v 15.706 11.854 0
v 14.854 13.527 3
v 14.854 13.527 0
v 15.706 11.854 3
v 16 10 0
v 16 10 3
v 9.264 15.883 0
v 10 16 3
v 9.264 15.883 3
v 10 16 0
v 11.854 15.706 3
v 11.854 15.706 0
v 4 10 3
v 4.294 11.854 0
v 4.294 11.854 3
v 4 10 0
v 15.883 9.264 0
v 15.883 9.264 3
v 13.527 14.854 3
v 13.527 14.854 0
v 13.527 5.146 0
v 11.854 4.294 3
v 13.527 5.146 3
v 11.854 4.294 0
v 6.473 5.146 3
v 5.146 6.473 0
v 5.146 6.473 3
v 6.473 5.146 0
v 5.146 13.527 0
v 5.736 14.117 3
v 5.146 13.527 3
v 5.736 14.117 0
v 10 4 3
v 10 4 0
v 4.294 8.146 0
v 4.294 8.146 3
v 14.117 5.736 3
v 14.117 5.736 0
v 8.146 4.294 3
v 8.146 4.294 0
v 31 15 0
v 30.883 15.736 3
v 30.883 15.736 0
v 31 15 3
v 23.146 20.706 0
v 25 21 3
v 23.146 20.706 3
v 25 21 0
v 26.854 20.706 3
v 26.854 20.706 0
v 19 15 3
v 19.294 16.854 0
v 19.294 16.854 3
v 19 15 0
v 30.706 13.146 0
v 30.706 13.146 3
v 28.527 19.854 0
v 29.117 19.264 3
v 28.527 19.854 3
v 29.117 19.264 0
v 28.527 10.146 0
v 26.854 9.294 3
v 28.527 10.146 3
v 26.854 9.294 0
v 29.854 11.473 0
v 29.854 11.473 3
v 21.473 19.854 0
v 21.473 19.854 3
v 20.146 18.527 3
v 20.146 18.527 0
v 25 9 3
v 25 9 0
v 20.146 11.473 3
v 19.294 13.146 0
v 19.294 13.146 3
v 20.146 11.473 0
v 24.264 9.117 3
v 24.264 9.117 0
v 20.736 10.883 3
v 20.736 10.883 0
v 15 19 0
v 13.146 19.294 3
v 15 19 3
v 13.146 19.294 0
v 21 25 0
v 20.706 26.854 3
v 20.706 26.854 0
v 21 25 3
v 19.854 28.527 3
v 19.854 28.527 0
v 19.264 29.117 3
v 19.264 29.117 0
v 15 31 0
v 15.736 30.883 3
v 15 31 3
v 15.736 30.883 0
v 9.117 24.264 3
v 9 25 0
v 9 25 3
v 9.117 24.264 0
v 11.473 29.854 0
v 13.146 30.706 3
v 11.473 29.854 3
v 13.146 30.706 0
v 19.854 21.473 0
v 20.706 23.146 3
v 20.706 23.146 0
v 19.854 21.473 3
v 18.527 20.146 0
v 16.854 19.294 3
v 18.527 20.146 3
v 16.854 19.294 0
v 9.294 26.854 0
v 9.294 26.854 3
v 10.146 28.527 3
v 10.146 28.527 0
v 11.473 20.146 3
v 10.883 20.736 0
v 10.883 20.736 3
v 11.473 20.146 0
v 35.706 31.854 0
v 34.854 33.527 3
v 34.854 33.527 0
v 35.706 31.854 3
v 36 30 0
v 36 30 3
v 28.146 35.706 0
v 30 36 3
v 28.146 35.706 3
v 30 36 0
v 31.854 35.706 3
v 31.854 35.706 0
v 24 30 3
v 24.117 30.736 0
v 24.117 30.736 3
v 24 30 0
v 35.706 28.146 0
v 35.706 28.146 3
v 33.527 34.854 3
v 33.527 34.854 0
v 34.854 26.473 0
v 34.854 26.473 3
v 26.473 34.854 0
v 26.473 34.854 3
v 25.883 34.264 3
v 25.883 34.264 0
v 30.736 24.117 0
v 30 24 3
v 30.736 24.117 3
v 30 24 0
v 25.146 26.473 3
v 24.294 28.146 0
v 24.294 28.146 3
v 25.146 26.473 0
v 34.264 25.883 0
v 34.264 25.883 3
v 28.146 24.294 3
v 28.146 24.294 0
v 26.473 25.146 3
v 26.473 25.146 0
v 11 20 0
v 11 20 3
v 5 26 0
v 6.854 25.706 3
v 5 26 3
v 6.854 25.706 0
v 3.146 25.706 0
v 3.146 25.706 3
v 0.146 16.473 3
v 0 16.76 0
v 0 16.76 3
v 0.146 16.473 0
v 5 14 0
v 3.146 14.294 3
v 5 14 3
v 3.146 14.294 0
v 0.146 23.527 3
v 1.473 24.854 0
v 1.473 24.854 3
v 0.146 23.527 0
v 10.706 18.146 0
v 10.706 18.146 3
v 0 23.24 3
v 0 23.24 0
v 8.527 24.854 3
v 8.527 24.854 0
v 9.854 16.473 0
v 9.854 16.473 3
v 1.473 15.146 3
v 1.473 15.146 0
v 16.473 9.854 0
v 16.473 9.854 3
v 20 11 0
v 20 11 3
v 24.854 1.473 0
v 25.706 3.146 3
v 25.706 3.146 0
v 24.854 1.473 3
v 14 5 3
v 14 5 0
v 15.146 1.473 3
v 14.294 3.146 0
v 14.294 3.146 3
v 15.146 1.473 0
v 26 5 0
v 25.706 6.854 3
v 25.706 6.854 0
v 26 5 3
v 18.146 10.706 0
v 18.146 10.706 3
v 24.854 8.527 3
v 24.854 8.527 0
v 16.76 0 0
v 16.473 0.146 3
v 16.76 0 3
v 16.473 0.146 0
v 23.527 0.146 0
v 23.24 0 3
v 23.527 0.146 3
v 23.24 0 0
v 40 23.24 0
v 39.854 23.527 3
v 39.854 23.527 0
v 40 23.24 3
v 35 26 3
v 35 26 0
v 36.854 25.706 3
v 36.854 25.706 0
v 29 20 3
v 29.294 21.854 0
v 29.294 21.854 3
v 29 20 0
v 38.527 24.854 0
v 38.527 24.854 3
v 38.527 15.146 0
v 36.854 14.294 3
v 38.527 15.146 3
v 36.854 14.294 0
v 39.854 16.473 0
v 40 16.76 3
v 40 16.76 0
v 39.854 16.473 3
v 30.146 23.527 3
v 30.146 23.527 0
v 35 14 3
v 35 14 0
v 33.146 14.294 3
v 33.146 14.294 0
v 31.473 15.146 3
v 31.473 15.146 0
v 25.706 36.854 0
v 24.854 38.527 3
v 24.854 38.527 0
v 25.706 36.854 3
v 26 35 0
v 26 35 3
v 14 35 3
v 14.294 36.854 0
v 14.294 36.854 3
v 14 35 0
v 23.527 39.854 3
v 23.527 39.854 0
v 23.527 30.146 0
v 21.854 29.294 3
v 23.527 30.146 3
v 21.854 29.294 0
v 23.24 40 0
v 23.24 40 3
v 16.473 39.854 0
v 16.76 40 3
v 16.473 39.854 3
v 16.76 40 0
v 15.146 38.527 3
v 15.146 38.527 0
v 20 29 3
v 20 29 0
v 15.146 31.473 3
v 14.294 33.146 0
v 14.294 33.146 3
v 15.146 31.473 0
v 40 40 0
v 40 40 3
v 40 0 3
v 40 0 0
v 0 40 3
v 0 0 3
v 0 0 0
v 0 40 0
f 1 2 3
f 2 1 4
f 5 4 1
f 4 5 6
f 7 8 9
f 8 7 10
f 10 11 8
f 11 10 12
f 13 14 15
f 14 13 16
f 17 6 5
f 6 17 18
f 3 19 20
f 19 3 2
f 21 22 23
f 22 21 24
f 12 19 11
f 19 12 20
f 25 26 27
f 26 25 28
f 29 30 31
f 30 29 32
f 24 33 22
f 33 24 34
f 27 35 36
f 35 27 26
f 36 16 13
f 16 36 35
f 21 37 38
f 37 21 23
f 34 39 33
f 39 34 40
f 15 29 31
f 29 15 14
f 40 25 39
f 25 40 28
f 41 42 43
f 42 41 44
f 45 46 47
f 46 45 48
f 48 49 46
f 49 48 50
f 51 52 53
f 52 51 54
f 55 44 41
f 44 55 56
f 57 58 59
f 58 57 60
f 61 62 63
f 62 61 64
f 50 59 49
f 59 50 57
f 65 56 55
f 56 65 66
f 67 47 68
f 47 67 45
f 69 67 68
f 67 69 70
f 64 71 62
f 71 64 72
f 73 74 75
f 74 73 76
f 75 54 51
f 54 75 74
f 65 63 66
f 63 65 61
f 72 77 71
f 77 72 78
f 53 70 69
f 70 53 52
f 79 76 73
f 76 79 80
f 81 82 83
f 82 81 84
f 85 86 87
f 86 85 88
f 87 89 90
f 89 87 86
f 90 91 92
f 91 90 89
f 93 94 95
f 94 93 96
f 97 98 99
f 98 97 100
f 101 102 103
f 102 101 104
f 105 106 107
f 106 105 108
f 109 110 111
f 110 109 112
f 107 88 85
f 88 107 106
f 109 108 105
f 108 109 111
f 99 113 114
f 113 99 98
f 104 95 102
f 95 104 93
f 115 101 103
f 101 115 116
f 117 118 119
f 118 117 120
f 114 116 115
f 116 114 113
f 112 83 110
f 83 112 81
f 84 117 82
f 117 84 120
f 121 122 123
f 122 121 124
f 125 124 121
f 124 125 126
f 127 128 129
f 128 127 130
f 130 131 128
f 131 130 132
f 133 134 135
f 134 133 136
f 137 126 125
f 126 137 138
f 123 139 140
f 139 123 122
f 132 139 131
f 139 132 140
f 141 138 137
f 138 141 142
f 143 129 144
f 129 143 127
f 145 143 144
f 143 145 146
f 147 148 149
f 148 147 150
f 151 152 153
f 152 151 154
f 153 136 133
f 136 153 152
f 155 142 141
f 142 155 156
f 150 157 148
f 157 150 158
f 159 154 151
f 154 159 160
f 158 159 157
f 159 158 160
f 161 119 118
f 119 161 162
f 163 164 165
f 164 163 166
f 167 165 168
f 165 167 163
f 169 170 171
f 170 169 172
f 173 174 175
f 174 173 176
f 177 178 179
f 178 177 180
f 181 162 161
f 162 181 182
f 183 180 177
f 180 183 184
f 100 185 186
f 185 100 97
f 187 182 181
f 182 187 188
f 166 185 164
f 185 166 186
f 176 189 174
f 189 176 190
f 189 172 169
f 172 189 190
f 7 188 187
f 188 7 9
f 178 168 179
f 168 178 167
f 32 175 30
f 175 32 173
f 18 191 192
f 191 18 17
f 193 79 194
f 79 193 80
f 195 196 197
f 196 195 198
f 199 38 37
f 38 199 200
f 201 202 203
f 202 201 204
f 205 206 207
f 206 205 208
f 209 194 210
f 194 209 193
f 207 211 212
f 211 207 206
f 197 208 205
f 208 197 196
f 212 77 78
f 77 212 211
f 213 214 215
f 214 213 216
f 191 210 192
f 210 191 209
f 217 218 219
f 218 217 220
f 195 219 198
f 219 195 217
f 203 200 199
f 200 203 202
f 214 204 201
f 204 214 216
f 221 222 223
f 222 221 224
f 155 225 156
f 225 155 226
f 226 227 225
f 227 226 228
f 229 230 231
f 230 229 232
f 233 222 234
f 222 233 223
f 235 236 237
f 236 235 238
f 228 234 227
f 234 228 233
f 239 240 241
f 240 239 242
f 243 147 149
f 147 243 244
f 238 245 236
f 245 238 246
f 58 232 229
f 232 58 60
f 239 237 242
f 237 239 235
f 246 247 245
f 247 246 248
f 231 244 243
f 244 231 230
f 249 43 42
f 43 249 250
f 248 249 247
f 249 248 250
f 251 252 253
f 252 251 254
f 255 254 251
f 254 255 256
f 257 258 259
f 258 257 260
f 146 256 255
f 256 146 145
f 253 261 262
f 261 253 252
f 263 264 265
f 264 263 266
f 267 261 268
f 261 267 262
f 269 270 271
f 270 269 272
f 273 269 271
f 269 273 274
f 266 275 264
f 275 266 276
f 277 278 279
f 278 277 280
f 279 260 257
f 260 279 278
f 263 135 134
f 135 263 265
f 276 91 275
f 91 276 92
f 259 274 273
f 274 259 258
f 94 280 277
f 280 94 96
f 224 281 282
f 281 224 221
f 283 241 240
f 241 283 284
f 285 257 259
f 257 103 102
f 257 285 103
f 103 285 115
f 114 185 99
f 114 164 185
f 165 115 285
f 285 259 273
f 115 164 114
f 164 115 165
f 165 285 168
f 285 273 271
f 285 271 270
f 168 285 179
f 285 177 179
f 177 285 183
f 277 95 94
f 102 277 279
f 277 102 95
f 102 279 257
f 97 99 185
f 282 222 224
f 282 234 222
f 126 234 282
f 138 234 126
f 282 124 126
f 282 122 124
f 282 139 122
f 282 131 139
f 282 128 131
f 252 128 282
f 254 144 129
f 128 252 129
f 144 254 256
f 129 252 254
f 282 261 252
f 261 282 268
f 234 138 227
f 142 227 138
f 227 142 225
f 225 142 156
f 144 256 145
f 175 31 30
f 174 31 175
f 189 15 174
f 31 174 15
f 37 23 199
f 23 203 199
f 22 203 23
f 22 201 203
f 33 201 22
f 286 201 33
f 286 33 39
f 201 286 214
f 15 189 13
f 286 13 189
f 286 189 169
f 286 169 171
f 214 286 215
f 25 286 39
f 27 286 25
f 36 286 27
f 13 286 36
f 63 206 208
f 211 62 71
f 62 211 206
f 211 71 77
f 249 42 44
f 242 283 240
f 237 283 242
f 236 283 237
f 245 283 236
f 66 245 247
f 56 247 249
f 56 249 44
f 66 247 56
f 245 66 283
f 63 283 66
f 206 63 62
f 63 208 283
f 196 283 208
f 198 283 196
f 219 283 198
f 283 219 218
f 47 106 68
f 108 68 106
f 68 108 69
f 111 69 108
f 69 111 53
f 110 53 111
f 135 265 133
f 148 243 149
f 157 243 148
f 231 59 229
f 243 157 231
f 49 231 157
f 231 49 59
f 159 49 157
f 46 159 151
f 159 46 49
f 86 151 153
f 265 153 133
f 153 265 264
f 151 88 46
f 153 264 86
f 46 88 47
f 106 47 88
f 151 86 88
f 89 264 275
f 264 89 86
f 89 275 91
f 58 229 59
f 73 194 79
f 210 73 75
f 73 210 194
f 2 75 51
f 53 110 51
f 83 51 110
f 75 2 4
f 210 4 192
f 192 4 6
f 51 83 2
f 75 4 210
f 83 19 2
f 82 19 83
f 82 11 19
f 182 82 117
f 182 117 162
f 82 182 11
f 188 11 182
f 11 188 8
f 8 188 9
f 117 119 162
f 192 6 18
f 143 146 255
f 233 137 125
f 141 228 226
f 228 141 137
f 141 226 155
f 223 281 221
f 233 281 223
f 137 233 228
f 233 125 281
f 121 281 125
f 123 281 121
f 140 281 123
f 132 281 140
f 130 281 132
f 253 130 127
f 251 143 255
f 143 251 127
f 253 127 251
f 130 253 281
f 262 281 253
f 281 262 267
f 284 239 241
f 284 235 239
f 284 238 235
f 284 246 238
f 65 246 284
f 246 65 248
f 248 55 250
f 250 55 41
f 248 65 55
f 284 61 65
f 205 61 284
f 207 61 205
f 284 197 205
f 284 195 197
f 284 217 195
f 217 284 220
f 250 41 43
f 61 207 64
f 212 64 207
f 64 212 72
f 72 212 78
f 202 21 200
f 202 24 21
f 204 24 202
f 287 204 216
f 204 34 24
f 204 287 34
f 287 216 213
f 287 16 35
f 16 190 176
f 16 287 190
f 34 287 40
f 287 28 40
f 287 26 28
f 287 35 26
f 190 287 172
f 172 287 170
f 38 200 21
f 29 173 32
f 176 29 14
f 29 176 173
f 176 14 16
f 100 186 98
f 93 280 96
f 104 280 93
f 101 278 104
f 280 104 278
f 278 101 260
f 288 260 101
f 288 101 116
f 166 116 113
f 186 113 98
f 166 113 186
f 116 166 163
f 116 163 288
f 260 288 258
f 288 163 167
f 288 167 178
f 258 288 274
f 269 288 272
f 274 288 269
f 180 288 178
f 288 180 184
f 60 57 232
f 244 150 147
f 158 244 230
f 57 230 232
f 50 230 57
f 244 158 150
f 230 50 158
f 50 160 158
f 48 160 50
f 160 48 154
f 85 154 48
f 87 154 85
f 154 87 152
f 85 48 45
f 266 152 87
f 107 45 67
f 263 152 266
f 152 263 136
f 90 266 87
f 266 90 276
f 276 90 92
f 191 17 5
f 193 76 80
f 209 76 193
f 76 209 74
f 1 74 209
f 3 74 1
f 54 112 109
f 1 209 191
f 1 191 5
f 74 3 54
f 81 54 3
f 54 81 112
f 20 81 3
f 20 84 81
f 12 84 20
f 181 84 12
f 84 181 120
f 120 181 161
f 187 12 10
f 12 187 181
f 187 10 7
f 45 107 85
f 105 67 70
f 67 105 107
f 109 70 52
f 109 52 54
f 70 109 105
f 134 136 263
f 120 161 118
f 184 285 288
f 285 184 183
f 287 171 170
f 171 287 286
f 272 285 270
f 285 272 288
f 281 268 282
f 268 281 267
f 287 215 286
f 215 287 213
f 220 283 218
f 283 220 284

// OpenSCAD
// Simplified voronoi-like pattern
seed_points = [
    [10, 10], [25, 15], [15, 25], [30, 30],
    [5, 20], [20, 5], [35, 20], [20, 35]
];

difference() {
    // Base plate
    cube([40, 40, 3]);
    
    // Cut circles around each point
    for (p = seed_points) {
        translate([p[0], p[1], -1])
            cylinder(h = 5, r = 6, $fn = 20);
    }
}
